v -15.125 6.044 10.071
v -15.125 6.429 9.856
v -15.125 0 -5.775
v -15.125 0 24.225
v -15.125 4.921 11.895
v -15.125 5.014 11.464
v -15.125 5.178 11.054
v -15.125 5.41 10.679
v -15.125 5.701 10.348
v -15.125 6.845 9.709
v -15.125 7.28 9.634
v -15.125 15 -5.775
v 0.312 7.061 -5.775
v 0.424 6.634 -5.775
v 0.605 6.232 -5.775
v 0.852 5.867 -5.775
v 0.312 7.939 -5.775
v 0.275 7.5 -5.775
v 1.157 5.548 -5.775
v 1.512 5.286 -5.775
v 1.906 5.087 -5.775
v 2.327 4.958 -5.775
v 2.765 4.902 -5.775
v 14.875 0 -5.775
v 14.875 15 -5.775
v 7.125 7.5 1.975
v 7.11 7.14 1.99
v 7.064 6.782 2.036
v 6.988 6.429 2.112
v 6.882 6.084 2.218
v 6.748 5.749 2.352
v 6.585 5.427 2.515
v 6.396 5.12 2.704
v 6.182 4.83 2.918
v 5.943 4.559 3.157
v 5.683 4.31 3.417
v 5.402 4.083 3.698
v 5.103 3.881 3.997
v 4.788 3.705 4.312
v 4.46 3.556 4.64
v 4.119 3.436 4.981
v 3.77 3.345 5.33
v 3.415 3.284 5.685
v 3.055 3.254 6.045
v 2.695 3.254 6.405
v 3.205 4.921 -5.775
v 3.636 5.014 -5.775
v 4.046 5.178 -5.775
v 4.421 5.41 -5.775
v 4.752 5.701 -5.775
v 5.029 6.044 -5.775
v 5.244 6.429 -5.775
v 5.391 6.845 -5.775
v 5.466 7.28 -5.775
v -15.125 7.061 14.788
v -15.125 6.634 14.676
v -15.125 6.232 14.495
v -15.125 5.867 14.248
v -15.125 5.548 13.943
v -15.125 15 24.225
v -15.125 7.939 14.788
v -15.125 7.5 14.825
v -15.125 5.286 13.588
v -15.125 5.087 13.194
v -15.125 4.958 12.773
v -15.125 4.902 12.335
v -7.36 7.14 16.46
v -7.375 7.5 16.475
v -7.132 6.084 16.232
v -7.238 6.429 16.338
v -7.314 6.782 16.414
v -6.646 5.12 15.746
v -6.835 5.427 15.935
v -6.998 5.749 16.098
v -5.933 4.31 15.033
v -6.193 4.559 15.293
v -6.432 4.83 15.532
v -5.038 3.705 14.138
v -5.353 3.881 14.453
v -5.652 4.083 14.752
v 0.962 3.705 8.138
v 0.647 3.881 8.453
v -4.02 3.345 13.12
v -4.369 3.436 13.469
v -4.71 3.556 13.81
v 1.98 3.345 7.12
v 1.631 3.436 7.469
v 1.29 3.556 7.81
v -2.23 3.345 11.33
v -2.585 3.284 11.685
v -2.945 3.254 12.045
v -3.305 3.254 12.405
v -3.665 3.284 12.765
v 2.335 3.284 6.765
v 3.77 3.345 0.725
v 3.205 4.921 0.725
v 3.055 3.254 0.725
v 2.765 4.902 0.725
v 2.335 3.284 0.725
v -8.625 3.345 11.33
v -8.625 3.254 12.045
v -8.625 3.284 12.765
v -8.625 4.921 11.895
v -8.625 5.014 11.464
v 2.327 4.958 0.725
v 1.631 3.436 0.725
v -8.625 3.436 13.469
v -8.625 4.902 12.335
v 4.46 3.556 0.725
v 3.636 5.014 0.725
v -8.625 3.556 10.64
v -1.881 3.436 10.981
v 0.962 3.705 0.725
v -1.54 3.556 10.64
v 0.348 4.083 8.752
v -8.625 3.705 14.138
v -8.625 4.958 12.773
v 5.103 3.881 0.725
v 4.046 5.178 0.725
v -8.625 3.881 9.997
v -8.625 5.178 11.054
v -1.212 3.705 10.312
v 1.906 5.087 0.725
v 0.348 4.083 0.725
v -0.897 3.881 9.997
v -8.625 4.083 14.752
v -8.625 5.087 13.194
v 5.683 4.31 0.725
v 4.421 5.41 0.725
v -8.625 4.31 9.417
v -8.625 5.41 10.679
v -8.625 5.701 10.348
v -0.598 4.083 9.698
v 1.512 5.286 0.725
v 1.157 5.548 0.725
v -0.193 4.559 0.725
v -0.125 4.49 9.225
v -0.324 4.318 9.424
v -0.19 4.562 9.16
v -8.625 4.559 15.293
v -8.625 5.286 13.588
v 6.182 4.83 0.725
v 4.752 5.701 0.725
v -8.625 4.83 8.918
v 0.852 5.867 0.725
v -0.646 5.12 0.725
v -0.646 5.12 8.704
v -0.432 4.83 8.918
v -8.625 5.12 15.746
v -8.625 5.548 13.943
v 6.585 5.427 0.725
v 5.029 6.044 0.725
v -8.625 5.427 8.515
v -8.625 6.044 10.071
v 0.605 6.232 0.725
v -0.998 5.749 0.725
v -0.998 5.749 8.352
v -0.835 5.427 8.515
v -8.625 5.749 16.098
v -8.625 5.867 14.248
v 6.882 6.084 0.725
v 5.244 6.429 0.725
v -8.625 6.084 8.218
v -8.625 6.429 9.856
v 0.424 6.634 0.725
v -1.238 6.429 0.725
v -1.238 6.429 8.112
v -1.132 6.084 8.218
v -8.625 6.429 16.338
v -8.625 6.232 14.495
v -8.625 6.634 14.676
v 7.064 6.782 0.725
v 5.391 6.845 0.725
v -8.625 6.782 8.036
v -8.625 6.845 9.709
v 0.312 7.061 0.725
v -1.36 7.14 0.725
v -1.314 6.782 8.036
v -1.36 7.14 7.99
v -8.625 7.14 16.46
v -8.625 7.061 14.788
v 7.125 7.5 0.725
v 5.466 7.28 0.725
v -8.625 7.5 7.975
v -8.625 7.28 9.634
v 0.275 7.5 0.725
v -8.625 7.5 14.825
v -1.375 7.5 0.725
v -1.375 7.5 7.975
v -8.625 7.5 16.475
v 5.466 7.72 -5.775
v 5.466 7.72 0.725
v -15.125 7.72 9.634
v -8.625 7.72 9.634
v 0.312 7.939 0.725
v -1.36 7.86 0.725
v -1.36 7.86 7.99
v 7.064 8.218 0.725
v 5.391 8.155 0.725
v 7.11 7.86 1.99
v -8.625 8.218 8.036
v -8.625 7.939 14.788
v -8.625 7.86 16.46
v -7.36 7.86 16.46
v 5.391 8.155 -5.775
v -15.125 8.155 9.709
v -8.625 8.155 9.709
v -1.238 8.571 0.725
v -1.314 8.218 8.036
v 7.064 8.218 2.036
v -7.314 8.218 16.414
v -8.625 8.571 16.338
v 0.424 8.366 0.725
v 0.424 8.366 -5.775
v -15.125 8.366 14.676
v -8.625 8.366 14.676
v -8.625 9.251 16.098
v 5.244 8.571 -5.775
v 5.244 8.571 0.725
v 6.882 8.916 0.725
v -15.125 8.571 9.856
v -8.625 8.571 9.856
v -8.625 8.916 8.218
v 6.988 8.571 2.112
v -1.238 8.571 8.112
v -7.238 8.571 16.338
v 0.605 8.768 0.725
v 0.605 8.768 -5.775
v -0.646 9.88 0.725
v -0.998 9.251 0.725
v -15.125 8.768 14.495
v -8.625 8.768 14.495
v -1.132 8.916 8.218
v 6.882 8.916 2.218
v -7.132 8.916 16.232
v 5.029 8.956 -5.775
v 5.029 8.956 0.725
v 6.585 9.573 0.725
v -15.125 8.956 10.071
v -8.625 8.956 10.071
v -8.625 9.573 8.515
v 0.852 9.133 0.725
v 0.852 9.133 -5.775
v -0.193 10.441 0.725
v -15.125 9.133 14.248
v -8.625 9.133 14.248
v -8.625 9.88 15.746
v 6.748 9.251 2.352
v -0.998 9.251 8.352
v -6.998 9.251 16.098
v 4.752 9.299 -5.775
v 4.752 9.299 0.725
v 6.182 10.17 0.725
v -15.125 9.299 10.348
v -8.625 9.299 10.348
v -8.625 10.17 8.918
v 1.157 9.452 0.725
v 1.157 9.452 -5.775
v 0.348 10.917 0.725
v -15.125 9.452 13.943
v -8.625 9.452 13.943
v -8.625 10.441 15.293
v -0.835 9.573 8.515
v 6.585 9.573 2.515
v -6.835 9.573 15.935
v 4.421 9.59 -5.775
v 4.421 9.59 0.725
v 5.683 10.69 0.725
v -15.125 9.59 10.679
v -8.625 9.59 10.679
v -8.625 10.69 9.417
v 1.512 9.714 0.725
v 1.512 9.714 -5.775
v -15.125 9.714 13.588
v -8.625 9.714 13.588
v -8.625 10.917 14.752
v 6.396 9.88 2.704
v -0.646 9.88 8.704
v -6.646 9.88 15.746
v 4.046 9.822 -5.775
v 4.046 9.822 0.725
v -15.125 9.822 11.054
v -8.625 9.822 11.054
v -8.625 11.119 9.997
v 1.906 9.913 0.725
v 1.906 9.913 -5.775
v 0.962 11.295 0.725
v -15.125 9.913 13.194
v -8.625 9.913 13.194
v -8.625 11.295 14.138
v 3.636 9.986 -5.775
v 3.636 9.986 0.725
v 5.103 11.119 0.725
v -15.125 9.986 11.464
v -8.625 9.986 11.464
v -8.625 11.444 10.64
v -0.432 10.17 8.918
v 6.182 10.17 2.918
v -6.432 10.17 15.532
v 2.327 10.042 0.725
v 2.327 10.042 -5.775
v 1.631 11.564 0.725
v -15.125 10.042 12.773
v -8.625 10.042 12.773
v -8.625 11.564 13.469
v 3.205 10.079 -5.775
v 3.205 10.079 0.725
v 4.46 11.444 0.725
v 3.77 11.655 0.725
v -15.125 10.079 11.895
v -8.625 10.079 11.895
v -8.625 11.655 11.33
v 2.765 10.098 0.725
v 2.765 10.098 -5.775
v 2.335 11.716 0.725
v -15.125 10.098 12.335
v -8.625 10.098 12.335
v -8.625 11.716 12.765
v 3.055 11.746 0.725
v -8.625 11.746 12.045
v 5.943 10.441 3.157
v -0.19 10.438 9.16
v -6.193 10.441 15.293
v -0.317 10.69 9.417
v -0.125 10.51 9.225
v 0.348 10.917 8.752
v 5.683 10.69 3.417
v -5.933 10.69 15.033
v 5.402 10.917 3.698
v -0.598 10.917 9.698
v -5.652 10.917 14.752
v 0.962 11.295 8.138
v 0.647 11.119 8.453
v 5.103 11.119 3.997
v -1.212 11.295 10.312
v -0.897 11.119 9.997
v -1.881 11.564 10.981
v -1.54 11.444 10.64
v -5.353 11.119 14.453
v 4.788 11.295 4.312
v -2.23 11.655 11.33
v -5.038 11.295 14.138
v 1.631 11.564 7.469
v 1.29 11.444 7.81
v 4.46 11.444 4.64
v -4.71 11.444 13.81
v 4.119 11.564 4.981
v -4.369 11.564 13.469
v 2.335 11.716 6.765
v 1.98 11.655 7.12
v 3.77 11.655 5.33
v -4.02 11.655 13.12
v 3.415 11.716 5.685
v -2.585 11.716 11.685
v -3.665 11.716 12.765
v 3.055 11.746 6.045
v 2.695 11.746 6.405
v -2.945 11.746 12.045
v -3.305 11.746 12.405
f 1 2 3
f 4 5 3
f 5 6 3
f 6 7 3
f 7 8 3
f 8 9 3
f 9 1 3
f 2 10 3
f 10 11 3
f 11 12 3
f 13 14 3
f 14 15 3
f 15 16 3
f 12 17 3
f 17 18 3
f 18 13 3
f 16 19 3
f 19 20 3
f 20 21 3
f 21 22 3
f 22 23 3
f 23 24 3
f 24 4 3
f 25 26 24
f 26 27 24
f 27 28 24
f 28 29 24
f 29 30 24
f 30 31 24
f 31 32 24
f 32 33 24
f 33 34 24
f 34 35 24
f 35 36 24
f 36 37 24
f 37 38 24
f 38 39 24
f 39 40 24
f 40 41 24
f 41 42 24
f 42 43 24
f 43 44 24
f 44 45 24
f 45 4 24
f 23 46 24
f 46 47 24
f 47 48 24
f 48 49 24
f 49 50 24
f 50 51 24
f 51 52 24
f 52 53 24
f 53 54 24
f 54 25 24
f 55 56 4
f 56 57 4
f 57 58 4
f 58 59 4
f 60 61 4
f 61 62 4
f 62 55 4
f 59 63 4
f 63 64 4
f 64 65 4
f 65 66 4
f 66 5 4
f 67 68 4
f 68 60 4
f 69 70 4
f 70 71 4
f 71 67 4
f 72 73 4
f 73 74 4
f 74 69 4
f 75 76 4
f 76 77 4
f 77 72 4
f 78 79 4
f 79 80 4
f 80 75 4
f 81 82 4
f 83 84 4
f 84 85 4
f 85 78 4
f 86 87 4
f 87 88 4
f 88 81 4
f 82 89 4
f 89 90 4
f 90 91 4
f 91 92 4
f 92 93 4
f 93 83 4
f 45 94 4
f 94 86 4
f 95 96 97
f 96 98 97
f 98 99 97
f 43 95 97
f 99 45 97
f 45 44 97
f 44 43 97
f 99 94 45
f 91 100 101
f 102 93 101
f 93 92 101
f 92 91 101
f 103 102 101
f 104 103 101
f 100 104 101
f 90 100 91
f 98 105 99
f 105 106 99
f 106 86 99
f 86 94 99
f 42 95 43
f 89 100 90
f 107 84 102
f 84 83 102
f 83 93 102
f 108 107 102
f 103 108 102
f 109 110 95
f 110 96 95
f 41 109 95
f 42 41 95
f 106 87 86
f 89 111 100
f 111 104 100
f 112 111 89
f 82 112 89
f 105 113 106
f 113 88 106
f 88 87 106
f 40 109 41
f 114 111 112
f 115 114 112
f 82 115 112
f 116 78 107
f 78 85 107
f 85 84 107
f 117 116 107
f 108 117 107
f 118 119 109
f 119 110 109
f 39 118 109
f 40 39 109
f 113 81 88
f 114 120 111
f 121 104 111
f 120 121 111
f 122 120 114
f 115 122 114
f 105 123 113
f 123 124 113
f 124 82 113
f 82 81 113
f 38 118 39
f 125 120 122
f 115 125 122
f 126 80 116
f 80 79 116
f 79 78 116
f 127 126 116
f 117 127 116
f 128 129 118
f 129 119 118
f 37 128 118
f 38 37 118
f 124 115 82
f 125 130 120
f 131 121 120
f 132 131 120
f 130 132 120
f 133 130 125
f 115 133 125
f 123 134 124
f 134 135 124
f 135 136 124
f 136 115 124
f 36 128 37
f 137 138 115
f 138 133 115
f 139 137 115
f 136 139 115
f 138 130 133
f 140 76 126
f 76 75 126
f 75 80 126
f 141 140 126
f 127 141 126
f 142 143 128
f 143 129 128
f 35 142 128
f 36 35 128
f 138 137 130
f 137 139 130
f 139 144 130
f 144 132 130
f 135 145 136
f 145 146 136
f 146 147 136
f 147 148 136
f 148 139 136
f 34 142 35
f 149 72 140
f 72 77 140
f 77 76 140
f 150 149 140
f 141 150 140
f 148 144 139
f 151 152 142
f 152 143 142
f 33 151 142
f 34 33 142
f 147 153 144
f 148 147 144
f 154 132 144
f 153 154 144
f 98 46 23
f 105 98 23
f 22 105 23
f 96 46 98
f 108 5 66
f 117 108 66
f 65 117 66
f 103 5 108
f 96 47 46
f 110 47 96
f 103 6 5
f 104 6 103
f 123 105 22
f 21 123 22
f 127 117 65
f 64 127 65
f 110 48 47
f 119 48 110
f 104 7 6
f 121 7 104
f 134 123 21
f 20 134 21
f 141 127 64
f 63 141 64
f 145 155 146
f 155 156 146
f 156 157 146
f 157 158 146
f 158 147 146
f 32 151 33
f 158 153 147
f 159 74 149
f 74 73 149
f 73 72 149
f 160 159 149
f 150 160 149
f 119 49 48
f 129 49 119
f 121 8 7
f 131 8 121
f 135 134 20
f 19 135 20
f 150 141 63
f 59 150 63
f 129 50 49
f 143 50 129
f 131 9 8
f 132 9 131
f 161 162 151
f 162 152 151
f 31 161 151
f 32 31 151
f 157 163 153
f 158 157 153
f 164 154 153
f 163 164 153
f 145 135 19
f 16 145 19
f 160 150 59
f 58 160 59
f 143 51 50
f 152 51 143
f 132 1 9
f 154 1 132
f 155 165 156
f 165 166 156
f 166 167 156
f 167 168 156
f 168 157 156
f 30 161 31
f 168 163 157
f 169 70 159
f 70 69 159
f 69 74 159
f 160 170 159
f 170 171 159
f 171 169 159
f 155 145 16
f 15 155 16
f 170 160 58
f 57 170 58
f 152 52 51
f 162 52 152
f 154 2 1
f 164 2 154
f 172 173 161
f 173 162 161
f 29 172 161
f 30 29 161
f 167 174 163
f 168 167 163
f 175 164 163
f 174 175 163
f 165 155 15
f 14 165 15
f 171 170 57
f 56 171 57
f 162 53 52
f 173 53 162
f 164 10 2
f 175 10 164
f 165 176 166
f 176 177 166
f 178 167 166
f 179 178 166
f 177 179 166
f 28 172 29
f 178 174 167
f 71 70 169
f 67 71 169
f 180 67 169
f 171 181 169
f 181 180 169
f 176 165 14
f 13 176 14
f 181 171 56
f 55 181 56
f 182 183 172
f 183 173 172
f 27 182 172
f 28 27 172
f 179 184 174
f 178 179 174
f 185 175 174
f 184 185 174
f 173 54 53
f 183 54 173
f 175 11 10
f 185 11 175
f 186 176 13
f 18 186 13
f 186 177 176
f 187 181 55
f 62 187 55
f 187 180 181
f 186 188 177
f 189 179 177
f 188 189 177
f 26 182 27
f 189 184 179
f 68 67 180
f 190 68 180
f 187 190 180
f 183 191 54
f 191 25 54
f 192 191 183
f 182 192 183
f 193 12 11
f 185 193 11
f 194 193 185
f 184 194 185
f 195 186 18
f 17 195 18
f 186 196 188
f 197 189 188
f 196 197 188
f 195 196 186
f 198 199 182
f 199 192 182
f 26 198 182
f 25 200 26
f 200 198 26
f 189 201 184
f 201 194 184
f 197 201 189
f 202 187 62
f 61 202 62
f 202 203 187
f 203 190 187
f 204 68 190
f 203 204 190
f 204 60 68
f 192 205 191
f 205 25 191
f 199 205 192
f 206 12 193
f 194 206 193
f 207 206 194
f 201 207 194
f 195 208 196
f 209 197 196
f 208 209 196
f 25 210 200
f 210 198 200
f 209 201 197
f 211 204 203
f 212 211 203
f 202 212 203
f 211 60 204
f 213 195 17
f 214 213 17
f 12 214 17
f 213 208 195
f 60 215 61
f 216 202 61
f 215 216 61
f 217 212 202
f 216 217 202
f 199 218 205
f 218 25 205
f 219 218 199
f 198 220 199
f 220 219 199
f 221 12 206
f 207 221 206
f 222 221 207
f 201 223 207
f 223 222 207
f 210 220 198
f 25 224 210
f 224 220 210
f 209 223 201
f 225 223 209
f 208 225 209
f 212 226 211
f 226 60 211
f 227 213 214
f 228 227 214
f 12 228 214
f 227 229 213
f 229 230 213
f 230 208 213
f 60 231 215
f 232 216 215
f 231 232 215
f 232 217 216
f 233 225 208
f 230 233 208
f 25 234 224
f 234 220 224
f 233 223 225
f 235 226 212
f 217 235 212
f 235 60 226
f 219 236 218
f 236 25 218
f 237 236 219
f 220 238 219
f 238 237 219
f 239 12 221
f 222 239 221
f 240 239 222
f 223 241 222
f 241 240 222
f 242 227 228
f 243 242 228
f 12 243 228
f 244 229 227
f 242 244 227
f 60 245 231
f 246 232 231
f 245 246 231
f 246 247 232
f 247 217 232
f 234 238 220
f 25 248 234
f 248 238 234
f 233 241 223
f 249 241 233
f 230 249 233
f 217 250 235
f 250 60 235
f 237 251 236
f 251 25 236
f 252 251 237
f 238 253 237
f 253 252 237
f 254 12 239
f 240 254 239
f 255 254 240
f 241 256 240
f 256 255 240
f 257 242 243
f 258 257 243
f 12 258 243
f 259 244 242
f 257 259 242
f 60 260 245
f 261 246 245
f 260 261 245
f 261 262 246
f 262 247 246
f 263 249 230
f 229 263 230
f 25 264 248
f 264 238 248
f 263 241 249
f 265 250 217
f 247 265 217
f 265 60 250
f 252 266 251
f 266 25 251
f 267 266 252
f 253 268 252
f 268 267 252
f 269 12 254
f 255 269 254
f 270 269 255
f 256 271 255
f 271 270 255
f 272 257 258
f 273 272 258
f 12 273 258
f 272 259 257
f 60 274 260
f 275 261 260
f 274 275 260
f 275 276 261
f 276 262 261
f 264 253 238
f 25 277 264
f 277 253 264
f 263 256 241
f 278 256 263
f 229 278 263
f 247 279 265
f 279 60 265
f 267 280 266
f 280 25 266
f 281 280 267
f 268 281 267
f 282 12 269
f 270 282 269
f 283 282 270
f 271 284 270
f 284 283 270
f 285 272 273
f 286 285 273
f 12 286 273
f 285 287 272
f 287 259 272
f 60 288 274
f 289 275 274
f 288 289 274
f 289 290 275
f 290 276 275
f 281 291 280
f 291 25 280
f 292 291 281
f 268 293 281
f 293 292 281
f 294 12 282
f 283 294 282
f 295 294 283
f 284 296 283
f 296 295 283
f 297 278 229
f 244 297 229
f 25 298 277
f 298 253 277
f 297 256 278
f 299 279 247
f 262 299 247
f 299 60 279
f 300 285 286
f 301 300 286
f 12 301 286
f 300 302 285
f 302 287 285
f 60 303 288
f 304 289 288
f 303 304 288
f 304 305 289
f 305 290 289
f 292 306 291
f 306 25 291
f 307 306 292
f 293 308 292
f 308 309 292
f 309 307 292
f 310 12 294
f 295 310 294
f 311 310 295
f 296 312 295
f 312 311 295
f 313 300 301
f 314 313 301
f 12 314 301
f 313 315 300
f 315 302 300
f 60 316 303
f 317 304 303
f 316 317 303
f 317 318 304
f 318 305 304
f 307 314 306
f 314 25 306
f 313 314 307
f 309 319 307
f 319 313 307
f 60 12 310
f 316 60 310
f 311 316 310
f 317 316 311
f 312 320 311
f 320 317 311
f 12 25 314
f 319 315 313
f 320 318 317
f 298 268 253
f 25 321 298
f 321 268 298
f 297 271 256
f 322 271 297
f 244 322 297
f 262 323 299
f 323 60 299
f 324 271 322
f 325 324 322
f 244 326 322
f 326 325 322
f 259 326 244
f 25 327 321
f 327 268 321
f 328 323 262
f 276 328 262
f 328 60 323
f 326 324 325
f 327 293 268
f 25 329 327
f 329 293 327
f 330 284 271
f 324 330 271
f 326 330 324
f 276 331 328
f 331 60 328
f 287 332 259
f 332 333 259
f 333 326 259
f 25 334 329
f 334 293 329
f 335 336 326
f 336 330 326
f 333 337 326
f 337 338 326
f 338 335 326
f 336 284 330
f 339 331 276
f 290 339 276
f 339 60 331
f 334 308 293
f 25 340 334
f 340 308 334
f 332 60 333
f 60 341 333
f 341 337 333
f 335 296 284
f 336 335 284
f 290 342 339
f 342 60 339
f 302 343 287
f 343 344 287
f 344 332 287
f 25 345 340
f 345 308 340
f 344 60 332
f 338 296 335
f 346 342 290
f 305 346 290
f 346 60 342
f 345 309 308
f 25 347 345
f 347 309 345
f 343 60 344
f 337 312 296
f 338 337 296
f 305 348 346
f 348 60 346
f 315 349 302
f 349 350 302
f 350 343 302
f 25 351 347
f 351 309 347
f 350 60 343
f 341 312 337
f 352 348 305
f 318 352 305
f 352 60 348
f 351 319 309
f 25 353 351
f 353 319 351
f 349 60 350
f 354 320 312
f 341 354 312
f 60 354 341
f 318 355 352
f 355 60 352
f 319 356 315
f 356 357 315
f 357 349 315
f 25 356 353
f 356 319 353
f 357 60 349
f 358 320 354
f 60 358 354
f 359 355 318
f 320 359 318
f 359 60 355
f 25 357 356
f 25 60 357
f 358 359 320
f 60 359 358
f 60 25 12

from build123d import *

# Parameters (mm, degrees)
EXTRUDE_1_DEPTH          = 15
SKETCH_2_R               = 2.6
CUT_EXTRUDE_1_DEPTH      = 42.374516613
SKETCH_3_R               = 2.6
CUT_EXTRUDE_2_DEPTH      = 37.793554123
CUT_EXTRUDE_4_DEPTH      = 3.5
CUT_EXTRUDE_4_DEPTH_BACK = 14
SKETCH_5_R               = 4.25
CUT_EXTRUDE_5_DEPTH      = 3.5
CUT_EXTRUDE_5_DEPTH_BACK = 18
SKETCH_6_R               = 4.25


with BuildPart() as part:
    # 草图1 → 凸台-拉伸1 (new body)
    with BuildSketch(Plane(origin=(0, 0, 0), x_dir=(1, 0, 0), z_dir=(0, 1, 0))):
        Polygon((14.875, 5.775), (-15.125, -24.225), (-15.125, 5.775), align=None)
    extrude(amount=EXTRUDE_1_DEPTH)

    # 草图2 → 切除-拉伸1 (cut, through all)
    with BuildSketch(Plane.ZY.offset(15.125)):
        with Locations((12.225, 7.5)):
            Circle(SKETCH_2_R)
    extrude(amount=-CUT_EXTRUDE_1_DEPTH, mode=Mode.SUBTRACT)

    # 草图3 → 切除-拉伸2 (cut, through all)
    with BuildSketch(Plane(origin=(0, 0, -5.775), x_dir=(-1, 0, 0), z_dir=(0, 0, -1))):
        with Locations((-2.875, 7.5)):
            Circle(SKETCH_3_R)
    extrude(amount=-CUT_EXTRUDE_2_DEPTH, mode=Mode.SUBTRACT)

    # 草图5 → 切除-拉伸4 (cut, two sides: drawn at the far end of the back side and taken through both)
    with BuildSketch(Plane.ZY.offset(5.125).offset(-CUT_EXTRUDE_4_DEPTH_BACK)):
        with Locations(Location((12.225, 7.5, 0), (0, 0, 180))):
            Circle(SKETCH_5_R)
    extrude(amount=CUT_EXTRUDE_4_DEPTH + CUT_EXTRUDE_4_DEPTH_BACK, mode=Mode.SUBTRACT)

    # 草图6 → 切除-拉伸5 (cut, two sides: drawn at the far end of the back side and taken through both)
    with BuildSketch(Plane(origin=(0, 0, 4.225), x_dir=(-1, 0, 0), z_dir=(0, 0, -1)).offset(-CUT_EXTRUDE_5_DEPTH_BACK)):
        with Locations(Location((-2.875, 7.5, 0), (0, 0, 45.099127844))):
            Circle(SKETCH_6_R)
    extrude(amount=CUT_EXTRUDE_5_DEPTH + CUT_EXTRUDE_5_DEPTH_BACK, mode=Mode.SUBTRACT)


solid = part.part
